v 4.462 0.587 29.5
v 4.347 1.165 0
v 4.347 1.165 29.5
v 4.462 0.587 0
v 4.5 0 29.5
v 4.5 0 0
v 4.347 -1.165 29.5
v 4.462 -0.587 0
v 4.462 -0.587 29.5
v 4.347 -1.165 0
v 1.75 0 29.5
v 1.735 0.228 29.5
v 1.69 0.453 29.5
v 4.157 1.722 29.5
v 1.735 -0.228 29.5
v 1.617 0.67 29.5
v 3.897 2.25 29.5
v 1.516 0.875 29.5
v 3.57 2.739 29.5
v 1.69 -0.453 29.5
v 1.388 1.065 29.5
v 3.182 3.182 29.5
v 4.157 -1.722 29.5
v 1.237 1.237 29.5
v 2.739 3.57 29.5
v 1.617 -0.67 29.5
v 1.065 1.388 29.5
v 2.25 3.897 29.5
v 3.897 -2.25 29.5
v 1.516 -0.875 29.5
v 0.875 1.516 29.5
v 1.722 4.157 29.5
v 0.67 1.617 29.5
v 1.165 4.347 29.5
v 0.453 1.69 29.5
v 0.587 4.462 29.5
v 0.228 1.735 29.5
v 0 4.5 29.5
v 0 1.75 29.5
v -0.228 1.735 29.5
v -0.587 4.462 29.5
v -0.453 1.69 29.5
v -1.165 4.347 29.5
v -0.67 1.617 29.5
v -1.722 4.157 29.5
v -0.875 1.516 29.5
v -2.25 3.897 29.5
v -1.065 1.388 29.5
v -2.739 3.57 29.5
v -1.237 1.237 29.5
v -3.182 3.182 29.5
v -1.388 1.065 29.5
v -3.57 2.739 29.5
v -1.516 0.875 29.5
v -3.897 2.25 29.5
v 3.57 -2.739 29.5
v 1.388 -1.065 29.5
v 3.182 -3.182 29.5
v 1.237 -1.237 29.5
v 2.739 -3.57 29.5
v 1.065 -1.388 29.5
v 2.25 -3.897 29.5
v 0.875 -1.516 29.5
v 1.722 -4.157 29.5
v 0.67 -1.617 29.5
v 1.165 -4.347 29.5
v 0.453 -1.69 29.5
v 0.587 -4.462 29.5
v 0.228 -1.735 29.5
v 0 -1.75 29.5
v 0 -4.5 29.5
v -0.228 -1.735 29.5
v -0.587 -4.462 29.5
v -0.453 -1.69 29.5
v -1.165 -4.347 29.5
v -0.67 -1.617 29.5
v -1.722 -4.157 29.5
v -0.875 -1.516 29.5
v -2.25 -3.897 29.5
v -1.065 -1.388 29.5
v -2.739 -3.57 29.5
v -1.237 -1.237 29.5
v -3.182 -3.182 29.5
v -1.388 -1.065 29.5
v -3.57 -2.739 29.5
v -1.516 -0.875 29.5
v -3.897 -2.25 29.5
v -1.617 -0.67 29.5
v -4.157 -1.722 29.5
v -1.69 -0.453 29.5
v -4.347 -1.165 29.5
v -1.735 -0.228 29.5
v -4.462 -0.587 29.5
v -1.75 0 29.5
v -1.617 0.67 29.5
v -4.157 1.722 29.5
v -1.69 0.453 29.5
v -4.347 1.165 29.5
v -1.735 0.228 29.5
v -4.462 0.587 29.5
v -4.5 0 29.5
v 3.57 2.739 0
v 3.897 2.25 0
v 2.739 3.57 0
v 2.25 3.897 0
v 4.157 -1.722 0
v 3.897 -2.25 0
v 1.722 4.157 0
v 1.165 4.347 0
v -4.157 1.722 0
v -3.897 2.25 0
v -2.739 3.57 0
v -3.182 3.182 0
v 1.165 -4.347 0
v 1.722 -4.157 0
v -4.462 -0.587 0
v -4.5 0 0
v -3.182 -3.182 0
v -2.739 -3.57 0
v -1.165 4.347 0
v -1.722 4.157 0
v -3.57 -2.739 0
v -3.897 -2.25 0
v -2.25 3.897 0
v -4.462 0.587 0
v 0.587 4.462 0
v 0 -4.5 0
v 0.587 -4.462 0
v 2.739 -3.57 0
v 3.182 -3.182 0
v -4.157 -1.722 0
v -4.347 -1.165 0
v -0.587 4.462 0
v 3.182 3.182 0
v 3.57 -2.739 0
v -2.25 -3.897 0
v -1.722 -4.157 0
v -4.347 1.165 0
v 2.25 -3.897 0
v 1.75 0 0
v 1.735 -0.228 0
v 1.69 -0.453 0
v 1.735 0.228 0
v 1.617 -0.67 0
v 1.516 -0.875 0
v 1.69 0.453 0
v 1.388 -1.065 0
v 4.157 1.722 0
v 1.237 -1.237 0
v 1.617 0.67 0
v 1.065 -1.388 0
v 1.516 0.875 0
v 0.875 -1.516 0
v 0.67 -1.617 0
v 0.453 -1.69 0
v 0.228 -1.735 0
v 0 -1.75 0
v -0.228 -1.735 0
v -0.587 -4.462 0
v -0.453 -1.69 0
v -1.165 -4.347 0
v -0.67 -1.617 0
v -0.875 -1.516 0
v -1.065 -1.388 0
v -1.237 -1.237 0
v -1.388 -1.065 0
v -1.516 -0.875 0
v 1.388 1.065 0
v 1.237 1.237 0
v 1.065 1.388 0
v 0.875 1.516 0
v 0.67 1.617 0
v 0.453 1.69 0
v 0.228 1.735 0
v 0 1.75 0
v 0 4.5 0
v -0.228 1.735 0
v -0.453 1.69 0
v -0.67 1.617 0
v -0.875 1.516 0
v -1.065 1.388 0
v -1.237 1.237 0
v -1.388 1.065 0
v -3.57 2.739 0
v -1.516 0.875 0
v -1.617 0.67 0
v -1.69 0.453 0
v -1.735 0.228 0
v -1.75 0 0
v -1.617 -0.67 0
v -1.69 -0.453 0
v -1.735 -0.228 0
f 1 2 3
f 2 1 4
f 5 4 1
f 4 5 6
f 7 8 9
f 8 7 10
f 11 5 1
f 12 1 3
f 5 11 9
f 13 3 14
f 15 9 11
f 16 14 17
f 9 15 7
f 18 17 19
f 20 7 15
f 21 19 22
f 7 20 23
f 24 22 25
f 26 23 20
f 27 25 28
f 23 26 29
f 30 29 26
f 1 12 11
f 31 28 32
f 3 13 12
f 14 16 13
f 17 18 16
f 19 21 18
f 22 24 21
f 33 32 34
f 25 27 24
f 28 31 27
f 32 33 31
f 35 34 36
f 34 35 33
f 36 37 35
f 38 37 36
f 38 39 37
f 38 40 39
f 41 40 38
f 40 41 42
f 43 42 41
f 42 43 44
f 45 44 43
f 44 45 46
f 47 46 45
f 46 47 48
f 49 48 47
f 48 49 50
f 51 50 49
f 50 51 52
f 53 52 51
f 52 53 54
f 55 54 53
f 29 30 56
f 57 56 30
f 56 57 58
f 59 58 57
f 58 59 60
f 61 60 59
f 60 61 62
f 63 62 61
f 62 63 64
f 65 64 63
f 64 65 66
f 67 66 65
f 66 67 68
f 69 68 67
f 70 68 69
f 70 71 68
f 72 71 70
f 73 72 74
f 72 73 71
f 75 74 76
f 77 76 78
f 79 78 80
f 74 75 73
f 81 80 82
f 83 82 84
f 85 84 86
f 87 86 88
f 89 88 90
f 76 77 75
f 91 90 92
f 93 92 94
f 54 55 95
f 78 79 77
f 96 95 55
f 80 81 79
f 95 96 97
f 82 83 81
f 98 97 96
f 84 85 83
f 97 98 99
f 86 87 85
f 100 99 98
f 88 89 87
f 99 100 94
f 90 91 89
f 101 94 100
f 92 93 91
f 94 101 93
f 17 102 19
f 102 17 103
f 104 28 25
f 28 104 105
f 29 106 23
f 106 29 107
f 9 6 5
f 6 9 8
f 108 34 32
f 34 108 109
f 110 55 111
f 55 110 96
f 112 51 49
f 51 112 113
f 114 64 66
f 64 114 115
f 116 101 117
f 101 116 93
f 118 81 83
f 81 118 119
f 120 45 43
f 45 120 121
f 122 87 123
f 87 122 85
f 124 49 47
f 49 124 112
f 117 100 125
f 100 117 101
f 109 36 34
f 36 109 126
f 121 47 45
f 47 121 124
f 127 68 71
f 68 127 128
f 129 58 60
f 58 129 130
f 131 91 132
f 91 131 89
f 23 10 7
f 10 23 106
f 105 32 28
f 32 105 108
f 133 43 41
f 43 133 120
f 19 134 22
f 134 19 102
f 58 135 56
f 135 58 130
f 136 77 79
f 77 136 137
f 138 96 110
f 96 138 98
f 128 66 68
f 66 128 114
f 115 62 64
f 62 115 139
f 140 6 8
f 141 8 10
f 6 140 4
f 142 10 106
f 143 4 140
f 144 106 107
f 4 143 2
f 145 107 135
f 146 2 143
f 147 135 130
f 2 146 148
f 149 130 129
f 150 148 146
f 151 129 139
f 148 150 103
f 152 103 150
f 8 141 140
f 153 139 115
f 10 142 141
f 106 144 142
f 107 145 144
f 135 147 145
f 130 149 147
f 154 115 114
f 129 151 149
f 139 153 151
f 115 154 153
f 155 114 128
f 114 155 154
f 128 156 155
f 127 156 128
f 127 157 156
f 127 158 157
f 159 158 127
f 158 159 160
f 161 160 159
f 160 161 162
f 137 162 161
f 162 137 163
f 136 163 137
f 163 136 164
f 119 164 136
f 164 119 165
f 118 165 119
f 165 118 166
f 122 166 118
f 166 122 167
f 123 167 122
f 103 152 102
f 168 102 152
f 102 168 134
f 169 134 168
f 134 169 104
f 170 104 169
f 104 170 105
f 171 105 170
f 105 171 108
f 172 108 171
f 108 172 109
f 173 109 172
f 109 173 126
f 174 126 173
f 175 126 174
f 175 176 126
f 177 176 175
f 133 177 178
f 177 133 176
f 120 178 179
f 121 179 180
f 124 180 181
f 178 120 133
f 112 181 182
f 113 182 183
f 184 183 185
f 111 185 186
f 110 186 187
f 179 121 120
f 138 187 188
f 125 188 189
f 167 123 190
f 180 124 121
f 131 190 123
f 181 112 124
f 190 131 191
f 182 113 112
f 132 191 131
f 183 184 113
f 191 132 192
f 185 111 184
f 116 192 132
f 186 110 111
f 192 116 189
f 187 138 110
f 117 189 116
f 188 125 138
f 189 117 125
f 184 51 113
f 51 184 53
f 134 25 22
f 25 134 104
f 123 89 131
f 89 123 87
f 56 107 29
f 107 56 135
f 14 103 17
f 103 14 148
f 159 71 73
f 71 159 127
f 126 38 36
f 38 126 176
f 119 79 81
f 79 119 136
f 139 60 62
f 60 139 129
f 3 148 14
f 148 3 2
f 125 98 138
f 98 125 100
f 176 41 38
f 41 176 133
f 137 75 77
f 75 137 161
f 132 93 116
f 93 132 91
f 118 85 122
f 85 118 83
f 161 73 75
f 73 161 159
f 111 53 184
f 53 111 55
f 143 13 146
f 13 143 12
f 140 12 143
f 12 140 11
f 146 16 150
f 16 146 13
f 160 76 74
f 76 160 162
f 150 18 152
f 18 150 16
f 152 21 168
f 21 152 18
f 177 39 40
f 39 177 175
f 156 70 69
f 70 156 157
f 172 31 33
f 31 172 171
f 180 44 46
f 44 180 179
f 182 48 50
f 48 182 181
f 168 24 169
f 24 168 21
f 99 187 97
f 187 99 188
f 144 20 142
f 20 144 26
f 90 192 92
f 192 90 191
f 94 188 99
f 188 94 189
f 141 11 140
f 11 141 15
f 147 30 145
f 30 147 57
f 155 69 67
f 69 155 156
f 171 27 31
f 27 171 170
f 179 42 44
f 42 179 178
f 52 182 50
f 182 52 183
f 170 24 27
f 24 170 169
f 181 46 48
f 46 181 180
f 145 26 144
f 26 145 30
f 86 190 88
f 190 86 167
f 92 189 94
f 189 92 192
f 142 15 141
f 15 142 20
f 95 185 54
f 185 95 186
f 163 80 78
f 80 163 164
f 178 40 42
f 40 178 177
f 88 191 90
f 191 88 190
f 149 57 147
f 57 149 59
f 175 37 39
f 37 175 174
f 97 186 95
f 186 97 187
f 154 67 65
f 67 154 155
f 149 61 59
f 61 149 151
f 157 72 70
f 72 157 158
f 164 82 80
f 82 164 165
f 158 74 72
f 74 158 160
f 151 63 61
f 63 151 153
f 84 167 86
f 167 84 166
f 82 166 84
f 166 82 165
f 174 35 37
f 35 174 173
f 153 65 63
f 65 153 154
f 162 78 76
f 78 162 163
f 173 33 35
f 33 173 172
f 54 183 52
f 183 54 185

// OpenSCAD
// file: parameters.scad
// =============================================================================
// Gen-BX — nightly 2026-10-11 (physics_scorer, honest magpylib watts)
// Gap reduction paid for by a bigger ring: the Gen-BU 8p/12c layout with the copper cut from 8.1 to 6.75 mm (magnet face to magnet face 10.70 → 9.35 mm, so Bz at the copper rises) and the lost window area won back radially, with the poles moved out to R71 and the bobbins stretched to r53–88. The scans show the thin-copper optimum only appears on the bigger ring (on R66 it gains far less), and R71 / Ø194 stator is the largest machine that still packs on one 410 mm plate.
// Clocking 0 deg (magnets N facing S) + D-flat keyed bore + index notch + flip-symmetric hole map.
// Windable 2-piece bobbin; turns = physics_scorer turns_fit; copper only between flanges.
// Steel back-iron: 2× Ø168 × 4.76 mm (3/16") mild-steel discs (steel_backiron_disc.dxf); magnets sit ON the steel
// (through-pockets) -> score with --back-iron. Night 2026-10-11.
// =============================================================================
topology            = "dual_rotor";

// --- Wire / winding (physics_scorer winding-fit) -------------------------------
wire_awg            = 26;
wire_od             = 0.45;     // insulated OD mm (bare 0.405)
fill_realistic      = 0.65;     // insulated-wire area / window (DENSE layered wind with a jig; scorer cap 0.65)
turns               = 410;       // = physics_scorer turns_fit (do NOT raise)
coil_former_type    = "bobbin";
coil_core_inset     = 14.87;     // radial copper build: hub = copper boundary inset by this
wind_build_axial    = 0.0;      // nothing proud of the flanges
wind_build_radial   = 0.0;

// --- Bobbin (base + lid) ---------------------------------------------------------
coil_id_r           = 53.00;    // copper boundary sector
coil_od_r           = 88.00;
span_deg            = 26.43;    // = pitch - 2*asin((wall+0.85)/coil_id_r) -> >=1.2 mm stator web
former_web          = 6.75;     // copper height between flanges (TALL copper: steel keeps Bz up)
flange_t            = 0.80;     // >= 0.8 mm FDM wall rule (tall winds push on the flanges)
wall                = 0.80;     // flange lip beyond copper
former_bare_h       = former_web + 2 * flange_t;
coil_envelope_h     = former_bare_h + 2 * wind_build_axial;
tab_w               = 7.0;
tab_len             = 7.0;
tab_h               = former_bare_h / 2;
pin_d               = 1.9;      // 1.75 mm filament locating pin
coil_mount_r        = coil_od_r + 0.2 + 4.0;
lead_y              = 1.6;
lead_slot_w         = 0.9;
lead_groove_d       = 0.6;

// --- Gap -------------------------------------------------------------------------
run_clear           = 0.50;     // rotor face -> flange
gap_spacer_h        = run_clear + wind_build_axial;
m2m                 = coil_envelope_h + 2 * run_clear;   // rotor face to rotor face (= gap_sleeve length)

// --- Stator ----------------------------------------------------------------------
coil_stations       = 12;
bay_clear           = 0.25;
stator_thick        = former_bare_h;                        // bobbins flush both faces
stator_od           = 194;
shaft_clear_stator  = 14.0;     // stator is static; gap sleeve OD 12 spins inside

// --- Rotor(s) --------------------------------------------------------------------
magnet_Br           = 1.43;     // N52
magnet_d_large      = 20.0;
magnet_h_large      = 5.0;      // one O20x5 per pocket
magnet_h_small      = 5.0;      // unused: no O5 pockets in this kit
halbach_magnetisation = "none";  // NO O5 assist magnets in this kit (scan: they lower the 4-pole score)
rotor_b_same_axis   = true;     // same-index magnets share one axis: N faces S across the gap
large_pocket_d      = 20.3;
small_pocket_d      = 5.3;
pocket_h            = 5.00;     // THROUGH the carrier: magnet back face sits on the steel disc (FLUSH seat: carrier = magnet height, magnet face level with the rotor face)
large_n             = 8;
R_large             = 71.0;
small_r_list        = [];       // no O5 pockets
carrier_od          = 168.0;
carrier_thick       = pocket_h;
hub_h               = 12.0;     // > steel_t + insert: radial set-screw clears the steel
hub_od              = 24.0;     // slim hub so the M4 brace rods fit at R~18 inside the coil ring
hub_insert_d        = 4.0;      // M3 heat-set insert, radial, bears on the D-flat
rotor_b_offset_deg  = 0.0;      // CLOCKING: magnets directly opposite
shaft_key           = "dflat";
dflat_depth         = 0.5;      // 8 mm shaft with 0.5 mm flat (7.5 across flat)
index_notch_d       = 3.0;

// --- Steel back-iron (buyable laser-cut) -------------------------------------------
steel_t             = 4.76;      // mild steel thickness (image method ignores it; sized from steel_flux.py so the return path stays well below saturation)
steel_center_hole   = 26.0;     // slips over the rotor hub (OD 24)
steel_od            = carrier_od;   // steel disc OD = rotor carrier OD

// --- Modular MAX interface ----------------------------------------------------------
shaft_bore          = 8.35;
dflat_x             = 4.0 - dflat_depth + (shaft_bore - 8.0) / 2;
bearing_d           = 21.85;
bearing_h           = 7.2;
m3_clear            = 3.5;
bolt_r_inner        = 30.0;     // M3 steel-disc clamp bolts (inside the magnet ring)
bolt_n_inner        = 4;
bolt_inner_angles   = [0, 90, 180, 270];
bolt_r_outer        = 44.0;     // second M3 steel-disc clamp ring
bolt_outer_angles   = [67.5, 112.5, 247.5, 292.5];
flange_bolt_r       = 91.5;     // frame rods: OUTSIDE the rotor OD (rotors spin inside them)
flange_bolt_n       = 4;
flange_bolt_offset  = 45.00;    // between coil stations -> never cuts a lead groove/tab
brace_r             = 18.0;
brace_d             = 4.3;      // temporary M4 jack rods (assembly only)
brace_n             = 4;
brace_angles        = [45, 135, 225, 315];          // flip-symmetric

spacer_pad_od       = 14.0;
spacer_pad_id       = m3_clear;
endbell_od          = 193.0;
endbell_thick       = 8.0;
endbell_shaft_clear = 10.0;
collar_h            = 10.0;
standoff_od         = 9.0;
frame_standoff_h    = run_clear + carrier_thick + hub_h + collar_h + 2.0;
sleeve_od           = 12.0;
plate_max_mm        = 410;

$fn = 64;
// main file
// Gen-BX — frame standoff tube between stator and an endbell, on each M3 frame rod (outside rotor OD).
// Print x4. Height = frame_standoff_h (rotor + steel + hub + collar + running clearance).
include <parameters.scad>;
$fn = 48;
difference() {
    cylinder(d=standoff_od, h=frame_standoff_h);
    translate([0, 0, -0.1]) cylinder(d=m3_clear, h=frame_standoff_h + 0.2);
}
